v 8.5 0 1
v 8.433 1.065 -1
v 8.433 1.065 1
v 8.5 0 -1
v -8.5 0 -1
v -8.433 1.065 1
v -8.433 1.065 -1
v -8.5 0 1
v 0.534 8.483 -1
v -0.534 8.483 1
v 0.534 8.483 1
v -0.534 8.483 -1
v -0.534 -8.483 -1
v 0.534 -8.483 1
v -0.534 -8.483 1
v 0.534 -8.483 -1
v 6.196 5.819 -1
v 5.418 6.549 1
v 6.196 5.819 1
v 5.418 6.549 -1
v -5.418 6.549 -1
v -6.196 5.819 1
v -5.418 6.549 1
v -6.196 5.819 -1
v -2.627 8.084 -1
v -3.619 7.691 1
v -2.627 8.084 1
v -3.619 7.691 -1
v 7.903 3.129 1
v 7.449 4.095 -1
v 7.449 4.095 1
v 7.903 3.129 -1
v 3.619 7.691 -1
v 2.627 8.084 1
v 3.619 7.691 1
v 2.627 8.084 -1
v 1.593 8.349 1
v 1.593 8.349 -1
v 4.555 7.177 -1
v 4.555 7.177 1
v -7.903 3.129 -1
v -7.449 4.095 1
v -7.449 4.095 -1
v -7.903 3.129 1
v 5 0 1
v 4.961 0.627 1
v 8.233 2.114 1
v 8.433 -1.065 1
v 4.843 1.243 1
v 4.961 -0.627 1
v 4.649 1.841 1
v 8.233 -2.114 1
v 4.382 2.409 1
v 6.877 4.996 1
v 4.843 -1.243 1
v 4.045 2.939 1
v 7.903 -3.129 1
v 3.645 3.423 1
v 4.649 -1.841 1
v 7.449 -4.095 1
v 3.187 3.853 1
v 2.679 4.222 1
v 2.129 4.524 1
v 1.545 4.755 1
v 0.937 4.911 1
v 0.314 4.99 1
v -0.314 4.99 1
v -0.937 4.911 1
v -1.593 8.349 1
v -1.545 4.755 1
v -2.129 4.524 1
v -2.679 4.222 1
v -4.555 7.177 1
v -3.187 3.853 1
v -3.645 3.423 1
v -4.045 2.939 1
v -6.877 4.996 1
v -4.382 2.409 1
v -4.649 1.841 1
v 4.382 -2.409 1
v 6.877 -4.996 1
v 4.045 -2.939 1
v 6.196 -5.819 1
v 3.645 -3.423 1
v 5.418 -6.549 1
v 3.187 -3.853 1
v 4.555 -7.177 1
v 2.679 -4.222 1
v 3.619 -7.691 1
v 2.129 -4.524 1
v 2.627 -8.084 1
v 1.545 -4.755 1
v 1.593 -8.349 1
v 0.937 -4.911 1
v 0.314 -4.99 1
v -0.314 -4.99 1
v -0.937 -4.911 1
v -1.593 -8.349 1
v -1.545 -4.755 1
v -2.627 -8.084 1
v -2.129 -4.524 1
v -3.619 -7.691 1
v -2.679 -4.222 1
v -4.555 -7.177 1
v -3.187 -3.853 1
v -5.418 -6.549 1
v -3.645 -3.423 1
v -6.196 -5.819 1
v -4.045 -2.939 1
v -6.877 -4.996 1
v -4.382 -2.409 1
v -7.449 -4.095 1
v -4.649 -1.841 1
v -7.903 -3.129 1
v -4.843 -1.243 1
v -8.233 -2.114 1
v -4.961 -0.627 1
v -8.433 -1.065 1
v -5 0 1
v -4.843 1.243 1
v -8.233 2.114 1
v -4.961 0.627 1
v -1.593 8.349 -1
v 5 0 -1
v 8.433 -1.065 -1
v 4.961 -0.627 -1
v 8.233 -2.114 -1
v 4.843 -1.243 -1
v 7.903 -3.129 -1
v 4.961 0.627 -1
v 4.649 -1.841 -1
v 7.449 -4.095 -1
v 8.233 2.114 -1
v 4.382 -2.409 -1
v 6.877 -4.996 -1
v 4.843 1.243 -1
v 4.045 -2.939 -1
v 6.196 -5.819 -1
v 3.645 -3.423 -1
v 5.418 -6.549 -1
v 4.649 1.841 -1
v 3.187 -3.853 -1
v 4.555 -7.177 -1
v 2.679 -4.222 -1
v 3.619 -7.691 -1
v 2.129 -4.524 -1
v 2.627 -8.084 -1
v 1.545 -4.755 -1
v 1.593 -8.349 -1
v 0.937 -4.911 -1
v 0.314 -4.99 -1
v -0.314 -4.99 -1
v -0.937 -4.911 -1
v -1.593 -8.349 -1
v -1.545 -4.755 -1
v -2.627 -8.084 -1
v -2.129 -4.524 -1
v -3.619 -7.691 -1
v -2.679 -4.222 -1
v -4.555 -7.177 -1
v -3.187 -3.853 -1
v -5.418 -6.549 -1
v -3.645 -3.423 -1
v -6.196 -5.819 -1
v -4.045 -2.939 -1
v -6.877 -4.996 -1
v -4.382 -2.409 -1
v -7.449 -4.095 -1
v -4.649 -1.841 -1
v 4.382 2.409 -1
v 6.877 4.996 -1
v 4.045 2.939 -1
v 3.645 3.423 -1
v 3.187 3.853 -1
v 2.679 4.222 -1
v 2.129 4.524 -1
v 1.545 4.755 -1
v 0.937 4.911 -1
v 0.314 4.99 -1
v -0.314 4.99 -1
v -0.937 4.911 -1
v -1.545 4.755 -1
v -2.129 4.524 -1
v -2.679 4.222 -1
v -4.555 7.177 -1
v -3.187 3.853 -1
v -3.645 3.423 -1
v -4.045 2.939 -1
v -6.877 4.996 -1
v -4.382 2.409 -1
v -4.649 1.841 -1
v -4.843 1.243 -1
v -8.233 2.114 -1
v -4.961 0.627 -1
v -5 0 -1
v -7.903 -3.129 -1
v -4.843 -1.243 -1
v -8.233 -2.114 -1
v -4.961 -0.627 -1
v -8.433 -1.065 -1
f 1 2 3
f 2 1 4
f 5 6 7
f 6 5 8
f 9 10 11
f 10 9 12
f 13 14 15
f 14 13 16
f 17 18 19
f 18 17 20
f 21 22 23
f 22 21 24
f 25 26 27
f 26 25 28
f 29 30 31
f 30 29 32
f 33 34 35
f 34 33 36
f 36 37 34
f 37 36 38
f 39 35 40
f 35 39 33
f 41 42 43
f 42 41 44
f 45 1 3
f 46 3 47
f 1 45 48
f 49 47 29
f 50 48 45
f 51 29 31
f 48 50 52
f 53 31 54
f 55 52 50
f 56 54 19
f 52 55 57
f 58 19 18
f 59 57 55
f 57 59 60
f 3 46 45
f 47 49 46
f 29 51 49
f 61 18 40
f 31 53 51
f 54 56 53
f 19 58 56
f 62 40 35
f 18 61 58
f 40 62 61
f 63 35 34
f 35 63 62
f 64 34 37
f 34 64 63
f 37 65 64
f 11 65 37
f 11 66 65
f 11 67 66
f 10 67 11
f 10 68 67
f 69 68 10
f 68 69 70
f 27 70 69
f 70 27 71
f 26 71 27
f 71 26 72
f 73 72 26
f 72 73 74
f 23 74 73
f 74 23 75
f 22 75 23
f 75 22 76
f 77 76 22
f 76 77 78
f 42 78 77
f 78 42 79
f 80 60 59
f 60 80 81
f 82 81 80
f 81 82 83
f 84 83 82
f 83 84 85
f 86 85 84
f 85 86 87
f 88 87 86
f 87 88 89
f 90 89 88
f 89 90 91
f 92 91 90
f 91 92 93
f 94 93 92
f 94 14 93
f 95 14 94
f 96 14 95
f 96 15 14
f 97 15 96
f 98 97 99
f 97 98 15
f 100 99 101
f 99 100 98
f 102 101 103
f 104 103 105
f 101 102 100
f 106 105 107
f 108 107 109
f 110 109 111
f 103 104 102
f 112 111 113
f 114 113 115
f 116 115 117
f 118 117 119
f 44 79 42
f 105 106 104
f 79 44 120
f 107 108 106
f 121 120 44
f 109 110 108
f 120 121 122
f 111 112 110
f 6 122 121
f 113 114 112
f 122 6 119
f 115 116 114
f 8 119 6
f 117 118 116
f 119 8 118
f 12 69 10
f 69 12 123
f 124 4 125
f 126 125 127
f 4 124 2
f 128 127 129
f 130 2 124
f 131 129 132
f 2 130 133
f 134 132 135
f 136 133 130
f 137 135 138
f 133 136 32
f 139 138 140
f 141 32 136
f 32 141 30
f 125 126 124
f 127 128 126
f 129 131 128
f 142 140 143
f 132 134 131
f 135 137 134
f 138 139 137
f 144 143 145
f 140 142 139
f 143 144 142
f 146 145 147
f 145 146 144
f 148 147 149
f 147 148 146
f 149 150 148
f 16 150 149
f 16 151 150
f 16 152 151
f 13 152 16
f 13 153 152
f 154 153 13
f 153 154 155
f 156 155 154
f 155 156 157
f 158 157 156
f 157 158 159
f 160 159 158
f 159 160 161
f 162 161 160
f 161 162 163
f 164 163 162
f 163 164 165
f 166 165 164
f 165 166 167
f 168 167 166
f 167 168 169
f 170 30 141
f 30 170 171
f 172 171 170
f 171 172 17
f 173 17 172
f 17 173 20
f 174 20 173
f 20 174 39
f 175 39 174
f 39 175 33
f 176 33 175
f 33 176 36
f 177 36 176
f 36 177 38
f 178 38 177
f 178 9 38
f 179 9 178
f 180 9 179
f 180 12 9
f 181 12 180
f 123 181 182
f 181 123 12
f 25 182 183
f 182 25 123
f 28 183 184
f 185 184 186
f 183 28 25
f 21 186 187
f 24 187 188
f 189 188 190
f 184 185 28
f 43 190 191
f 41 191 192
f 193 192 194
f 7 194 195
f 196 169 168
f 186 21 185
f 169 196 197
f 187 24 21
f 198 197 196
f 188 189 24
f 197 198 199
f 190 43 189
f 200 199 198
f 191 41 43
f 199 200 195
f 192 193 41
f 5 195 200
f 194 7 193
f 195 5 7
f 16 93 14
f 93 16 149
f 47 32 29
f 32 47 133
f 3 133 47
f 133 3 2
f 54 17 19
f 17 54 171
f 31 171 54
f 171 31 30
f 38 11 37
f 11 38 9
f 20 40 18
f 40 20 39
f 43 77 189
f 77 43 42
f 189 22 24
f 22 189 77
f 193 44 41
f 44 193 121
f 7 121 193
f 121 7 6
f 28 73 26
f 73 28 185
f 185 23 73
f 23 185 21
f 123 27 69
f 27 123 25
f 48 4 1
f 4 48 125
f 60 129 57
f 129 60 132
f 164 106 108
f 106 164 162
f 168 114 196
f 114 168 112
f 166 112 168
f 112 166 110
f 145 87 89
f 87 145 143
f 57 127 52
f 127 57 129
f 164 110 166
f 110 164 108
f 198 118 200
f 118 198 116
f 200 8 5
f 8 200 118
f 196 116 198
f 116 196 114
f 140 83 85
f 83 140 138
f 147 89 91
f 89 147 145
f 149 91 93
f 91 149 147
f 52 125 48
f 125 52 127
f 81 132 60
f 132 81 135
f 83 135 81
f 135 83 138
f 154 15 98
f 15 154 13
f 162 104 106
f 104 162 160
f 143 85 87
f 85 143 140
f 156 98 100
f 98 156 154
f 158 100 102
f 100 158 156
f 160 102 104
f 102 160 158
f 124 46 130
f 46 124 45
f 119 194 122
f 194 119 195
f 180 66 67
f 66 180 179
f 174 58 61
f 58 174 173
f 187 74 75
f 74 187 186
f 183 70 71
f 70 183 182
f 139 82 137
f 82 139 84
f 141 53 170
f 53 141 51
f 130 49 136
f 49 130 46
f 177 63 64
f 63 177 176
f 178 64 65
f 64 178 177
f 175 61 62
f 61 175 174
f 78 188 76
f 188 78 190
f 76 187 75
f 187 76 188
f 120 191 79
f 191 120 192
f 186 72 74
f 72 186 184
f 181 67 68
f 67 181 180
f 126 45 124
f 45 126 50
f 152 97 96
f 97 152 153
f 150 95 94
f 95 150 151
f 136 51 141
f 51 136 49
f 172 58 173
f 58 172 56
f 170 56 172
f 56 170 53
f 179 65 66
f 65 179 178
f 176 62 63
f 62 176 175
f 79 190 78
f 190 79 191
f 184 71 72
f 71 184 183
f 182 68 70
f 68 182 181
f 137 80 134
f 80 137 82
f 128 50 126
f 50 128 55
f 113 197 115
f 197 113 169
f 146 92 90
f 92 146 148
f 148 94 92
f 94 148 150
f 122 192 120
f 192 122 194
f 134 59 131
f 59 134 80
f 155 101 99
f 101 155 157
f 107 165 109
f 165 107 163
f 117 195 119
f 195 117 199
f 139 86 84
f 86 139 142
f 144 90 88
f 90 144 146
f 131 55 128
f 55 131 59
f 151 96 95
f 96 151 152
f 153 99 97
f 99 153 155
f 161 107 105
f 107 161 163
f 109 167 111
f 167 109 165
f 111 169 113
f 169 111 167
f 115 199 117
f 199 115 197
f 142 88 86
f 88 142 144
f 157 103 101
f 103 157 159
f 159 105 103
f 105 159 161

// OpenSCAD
$fn = 50;


difference() {
	union() {
		translate(v = [0, 0, -1.0000000000]) {
			cylinder(h = 2, r = 8.5000000000);
		}
	}
	union() {
		translate(v = [0, 0, -100.0000000000]) {
			cylinder(h = 200, r = 5.0000000000);
		}
	}
}
